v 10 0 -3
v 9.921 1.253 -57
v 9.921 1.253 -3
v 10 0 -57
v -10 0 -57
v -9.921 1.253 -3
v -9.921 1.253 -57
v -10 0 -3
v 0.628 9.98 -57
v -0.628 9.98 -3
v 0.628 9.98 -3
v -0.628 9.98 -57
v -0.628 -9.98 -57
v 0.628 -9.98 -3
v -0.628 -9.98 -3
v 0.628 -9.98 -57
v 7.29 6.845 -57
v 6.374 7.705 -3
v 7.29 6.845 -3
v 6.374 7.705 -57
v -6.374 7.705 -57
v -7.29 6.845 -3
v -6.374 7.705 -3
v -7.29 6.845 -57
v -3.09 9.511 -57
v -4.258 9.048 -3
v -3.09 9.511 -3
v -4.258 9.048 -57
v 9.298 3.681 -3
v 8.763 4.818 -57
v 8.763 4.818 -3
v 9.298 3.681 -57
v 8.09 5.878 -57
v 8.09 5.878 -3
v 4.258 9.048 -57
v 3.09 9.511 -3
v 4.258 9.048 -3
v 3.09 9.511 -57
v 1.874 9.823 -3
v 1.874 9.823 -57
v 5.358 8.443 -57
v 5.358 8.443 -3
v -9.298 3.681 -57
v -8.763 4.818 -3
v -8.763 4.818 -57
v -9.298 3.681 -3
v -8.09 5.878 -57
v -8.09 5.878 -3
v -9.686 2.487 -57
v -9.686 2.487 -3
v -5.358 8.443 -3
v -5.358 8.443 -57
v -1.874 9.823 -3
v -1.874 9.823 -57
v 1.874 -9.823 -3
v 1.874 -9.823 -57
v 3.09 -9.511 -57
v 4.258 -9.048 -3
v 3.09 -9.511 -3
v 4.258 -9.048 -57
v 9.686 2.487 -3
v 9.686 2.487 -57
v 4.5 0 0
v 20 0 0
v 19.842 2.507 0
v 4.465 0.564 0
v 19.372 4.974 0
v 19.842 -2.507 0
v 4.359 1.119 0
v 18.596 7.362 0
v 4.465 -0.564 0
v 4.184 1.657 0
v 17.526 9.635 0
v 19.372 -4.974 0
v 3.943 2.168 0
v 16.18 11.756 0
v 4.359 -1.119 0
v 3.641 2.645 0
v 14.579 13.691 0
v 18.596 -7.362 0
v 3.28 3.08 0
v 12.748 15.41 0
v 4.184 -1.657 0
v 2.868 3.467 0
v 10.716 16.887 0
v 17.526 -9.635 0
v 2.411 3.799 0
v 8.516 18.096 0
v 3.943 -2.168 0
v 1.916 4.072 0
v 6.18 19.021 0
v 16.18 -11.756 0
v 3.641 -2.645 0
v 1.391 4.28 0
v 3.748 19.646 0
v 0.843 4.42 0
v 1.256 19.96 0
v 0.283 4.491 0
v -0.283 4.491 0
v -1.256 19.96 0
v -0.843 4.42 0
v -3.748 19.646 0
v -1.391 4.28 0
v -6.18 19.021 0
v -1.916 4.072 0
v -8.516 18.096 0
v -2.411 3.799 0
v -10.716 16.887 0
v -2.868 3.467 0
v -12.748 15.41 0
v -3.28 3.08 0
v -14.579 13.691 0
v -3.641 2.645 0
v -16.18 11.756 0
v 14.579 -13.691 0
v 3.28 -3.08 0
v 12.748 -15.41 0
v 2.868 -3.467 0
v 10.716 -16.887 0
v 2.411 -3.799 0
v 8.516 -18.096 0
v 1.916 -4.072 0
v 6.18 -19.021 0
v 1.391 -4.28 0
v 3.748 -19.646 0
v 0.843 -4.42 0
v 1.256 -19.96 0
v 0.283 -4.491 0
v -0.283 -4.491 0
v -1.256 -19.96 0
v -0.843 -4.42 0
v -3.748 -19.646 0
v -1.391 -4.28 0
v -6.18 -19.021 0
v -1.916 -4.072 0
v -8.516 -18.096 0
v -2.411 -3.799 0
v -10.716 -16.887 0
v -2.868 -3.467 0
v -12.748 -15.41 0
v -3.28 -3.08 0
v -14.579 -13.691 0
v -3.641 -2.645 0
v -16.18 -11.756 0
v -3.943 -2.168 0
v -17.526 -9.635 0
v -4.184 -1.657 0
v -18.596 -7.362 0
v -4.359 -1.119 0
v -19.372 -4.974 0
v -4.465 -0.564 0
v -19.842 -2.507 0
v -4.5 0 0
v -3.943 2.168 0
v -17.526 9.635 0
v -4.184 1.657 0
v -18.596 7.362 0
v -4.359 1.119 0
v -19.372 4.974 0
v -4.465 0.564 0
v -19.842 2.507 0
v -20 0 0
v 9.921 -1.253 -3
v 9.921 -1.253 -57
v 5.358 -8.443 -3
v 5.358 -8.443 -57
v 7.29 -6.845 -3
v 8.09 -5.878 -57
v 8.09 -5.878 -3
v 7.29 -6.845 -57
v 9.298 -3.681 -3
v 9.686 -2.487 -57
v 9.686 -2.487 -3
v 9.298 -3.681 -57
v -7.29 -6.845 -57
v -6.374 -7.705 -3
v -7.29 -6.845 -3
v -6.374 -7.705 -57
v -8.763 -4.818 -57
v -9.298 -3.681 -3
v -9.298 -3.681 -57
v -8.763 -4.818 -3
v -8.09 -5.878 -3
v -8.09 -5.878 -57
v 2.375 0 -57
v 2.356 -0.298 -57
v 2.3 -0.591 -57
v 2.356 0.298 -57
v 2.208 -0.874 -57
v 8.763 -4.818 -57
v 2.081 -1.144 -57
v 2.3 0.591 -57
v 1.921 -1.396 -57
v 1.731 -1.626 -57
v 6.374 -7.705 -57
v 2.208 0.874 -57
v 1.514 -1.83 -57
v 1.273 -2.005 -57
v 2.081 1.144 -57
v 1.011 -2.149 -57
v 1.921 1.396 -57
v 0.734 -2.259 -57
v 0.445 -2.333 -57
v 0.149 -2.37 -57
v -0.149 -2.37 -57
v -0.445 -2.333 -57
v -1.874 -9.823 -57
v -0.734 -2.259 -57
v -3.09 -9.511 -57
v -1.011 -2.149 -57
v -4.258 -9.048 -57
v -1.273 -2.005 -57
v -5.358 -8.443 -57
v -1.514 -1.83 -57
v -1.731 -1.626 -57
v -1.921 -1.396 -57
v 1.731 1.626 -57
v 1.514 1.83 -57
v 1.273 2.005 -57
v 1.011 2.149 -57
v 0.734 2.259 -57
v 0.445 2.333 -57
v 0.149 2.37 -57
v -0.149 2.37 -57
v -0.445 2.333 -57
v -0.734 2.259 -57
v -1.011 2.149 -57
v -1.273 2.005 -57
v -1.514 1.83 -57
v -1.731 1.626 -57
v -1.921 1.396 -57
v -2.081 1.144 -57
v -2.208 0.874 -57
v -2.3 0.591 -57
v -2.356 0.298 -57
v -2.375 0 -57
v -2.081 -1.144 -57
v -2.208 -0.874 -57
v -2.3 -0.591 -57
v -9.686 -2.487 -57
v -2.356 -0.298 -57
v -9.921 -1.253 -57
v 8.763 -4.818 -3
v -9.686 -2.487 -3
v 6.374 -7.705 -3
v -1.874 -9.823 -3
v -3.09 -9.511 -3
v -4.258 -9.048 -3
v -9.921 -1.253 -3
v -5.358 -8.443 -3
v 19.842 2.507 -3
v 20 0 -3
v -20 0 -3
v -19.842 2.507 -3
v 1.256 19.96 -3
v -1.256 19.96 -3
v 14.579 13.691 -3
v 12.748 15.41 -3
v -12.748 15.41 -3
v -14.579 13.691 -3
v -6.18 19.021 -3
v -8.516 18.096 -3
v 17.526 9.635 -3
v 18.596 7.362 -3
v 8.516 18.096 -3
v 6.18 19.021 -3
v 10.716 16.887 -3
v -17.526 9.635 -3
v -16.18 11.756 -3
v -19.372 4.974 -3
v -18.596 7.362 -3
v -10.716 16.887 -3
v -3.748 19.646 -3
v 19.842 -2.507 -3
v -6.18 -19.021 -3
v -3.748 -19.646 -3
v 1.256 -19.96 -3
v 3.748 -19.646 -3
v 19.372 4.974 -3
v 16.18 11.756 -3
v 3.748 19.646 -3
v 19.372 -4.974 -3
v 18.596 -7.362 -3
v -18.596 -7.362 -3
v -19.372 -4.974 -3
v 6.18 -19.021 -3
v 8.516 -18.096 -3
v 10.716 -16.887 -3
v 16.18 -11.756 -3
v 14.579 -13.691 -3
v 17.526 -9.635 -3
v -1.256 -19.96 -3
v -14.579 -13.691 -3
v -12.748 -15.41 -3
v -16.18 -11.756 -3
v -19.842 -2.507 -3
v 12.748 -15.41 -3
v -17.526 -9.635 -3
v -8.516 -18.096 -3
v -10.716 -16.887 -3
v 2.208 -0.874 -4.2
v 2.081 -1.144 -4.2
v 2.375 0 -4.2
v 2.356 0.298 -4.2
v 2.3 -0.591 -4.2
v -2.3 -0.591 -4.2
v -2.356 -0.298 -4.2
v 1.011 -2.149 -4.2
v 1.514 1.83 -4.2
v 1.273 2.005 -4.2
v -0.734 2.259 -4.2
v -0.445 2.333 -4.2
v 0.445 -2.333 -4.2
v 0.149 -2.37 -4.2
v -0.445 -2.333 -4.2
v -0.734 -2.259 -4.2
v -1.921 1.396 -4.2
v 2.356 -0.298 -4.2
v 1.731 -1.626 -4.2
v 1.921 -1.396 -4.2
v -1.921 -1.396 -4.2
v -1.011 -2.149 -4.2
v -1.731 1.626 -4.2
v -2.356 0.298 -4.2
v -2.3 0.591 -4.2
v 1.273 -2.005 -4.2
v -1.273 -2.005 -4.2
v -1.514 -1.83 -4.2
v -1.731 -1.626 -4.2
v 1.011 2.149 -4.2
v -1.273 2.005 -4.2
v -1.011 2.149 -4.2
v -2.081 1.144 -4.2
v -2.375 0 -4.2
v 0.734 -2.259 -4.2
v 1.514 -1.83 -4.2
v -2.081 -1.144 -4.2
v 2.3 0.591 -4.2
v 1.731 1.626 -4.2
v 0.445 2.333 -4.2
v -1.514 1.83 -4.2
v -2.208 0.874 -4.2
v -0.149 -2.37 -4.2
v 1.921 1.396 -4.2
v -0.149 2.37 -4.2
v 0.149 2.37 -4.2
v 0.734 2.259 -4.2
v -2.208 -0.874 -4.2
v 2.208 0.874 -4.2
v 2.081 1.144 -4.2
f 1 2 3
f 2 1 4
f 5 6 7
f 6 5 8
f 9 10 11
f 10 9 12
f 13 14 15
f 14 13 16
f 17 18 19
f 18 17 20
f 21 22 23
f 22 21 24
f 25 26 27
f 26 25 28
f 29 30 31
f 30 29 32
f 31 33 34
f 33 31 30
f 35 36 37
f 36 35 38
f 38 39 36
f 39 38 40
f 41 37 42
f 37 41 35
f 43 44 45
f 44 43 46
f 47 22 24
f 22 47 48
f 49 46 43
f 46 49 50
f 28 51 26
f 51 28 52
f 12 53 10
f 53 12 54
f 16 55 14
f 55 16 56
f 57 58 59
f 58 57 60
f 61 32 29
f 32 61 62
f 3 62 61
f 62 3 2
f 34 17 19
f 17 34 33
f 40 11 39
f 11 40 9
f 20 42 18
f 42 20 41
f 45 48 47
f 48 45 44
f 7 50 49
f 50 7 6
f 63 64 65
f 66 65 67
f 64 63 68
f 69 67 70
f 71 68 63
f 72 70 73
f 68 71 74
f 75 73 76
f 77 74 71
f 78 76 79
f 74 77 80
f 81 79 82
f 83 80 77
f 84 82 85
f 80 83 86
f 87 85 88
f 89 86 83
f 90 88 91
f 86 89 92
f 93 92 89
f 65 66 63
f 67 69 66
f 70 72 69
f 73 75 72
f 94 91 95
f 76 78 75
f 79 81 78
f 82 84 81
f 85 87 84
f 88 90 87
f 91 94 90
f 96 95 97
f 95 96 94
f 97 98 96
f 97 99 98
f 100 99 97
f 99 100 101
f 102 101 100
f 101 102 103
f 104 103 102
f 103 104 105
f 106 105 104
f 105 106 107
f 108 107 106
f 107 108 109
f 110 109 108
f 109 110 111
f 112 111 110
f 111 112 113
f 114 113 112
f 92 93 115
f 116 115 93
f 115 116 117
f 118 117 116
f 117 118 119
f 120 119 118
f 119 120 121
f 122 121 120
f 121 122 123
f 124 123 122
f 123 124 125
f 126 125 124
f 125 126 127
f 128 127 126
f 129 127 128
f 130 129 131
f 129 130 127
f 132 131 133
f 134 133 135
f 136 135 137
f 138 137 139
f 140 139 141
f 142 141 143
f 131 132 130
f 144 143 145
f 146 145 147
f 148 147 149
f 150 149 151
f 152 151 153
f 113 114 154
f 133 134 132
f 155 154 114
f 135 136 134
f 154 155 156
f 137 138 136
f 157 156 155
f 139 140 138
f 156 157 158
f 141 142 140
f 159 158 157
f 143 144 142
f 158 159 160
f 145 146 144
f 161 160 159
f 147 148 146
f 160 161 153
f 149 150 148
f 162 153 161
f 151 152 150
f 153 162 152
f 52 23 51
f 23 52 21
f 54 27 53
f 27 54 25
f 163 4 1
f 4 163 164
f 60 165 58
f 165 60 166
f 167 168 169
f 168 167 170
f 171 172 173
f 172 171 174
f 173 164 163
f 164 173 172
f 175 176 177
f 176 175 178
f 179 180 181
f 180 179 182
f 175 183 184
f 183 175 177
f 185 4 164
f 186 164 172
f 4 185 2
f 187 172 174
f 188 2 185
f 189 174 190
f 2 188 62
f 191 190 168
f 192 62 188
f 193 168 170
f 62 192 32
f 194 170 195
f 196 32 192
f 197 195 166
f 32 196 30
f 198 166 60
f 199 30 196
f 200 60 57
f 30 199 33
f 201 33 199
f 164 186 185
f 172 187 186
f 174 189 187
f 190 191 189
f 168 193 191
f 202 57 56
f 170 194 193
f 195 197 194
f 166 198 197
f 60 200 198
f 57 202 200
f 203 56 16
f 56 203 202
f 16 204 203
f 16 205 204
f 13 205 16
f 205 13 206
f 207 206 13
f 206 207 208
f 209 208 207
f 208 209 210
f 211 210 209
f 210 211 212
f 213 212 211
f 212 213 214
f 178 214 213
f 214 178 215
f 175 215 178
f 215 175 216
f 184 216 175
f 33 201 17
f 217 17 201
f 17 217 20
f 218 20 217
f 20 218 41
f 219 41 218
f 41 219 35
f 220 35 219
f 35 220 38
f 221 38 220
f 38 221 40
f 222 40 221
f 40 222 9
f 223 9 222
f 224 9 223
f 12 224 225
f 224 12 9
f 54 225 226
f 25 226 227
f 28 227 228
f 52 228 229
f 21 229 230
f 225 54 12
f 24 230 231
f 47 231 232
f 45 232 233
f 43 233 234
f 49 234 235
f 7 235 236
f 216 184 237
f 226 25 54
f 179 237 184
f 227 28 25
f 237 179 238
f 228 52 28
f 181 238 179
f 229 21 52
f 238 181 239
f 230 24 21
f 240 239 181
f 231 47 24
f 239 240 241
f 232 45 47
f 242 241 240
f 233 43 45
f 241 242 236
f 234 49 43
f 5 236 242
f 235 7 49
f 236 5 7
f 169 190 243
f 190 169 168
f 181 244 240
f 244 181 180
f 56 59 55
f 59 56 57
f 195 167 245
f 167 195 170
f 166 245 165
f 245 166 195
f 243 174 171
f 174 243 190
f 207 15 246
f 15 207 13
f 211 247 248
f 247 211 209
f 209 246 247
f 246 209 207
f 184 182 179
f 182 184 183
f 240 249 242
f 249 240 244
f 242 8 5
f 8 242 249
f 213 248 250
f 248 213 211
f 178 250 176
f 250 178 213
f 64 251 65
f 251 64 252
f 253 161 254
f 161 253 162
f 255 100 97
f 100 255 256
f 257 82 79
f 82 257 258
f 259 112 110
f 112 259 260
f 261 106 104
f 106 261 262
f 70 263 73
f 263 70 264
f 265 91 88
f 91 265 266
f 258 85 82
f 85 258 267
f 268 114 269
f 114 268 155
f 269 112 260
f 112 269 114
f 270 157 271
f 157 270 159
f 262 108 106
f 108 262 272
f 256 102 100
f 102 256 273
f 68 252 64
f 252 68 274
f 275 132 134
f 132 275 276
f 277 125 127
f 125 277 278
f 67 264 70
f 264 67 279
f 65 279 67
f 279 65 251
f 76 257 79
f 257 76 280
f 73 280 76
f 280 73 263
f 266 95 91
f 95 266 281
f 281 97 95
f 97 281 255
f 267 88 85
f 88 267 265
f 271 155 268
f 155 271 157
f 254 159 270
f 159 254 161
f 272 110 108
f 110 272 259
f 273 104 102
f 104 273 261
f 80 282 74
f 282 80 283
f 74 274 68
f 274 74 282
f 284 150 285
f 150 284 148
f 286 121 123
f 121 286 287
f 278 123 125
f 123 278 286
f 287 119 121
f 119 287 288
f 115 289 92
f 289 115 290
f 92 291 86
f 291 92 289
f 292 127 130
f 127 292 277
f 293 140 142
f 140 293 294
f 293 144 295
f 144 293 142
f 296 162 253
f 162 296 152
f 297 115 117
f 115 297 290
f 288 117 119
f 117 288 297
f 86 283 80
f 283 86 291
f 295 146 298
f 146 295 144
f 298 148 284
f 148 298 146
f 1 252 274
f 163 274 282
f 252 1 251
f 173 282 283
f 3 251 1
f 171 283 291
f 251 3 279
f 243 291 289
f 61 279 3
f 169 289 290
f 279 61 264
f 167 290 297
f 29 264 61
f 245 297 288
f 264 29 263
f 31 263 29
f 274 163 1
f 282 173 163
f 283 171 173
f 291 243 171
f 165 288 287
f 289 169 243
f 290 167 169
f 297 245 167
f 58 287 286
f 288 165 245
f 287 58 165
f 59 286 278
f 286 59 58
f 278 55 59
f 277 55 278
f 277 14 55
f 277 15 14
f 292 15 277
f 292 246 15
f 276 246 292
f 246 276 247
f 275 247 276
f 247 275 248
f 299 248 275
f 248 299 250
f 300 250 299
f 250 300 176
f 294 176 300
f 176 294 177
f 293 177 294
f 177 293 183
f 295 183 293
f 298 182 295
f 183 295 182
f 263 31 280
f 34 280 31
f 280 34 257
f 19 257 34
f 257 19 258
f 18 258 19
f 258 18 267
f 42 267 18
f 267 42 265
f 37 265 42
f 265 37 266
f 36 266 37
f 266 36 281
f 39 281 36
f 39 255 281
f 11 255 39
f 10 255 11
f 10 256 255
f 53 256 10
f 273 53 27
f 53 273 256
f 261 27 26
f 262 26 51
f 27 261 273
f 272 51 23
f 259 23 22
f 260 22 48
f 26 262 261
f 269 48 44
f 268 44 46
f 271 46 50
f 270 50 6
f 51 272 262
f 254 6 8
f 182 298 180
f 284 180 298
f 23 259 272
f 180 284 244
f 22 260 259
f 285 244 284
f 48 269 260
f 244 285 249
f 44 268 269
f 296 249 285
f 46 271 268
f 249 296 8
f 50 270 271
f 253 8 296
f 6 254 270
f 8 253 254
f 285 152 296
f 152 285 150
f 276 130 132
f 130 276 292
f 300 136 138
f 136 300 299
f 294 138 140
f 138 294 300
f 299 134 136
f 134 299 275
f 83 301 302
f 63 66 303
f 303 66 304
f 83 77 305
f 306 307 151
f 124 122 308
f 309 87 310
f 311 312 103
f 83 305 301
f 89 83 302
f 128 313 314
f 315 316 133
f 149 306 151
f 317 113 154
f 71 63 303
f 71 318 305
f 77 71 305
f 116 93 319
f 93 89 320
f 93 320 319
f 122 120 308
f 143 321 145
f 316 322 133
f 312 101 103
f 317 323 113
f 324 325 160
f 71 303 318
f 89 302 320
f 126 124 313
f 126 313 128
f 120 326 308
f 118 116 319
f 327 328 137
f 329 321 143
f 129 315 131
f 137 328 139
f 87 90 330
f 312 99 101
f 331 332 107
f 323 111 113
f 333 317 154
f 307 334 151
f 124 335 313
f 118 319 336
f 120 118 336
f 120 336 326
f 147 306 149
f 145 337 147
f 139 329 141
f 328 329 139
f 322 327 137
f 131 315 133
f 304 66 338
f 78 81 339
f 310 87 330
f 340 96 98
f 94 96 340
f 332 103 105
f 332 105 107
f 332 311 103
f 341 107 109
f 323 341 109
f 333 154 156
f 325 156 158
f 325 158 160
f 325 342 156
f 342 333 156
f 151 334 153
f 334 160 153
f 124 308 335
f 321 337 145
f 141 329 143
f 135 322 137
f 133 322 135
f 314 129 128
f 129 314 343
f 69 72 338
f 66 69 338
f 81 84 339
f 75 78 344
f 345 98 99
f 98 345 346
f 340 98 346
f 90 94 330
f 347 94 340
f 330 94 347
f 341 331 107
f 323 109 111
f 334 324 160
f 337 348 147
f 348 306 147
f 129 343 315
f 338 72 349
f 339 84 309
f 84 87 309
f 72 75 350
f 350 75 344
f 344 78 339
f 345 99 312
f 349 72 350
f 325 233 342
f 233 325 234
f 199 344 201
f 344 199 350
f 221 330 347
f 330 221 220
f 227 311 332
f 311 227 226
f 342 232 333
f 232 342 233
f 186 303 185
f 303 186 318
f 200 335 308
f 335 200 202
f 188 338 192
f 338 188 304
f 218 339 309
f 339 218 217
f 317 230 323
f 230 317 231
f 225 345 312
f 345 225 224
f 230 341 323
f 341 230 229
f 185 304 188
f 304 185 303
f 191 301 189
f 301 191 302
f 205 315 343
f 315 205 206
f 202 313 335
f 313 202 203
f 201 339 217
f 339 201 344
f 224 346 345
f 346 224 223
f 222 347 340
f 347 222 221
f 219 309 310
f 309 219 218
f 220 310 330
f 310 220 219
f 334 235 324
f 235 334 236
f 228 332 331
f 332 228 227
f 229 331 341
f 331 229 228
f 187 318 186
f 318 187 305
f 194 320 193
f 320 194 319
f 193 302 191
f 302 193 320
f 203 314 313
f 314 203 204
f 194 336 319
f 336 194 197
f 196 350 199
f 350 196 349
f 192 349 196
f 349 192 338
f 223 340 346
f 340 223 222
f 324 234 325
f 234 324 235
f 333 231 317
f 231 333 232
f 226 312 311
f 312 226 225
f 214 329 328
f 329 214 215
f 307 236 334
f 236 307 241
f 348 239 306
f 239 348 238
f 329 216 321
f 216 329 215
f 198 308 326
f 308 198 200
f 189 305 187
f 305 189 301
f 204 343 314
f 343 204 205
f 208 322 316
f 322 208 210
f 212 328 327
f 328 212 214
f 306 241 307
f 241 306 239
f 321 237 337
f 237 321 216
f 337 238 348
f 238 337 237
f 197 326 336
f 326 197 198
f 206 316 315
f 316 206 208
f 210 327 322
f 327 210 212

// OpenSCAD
$fn = 50;


difference() {
	union() {
		translate(v = [0, 0, -57.0000000000]) {
			cylinder(h = 57, r = 10.0000000000);
		}
		translate(v = [0, 0, -3.0000000000]) {
			cylinder(h = 3, r = 20.0000000000);
		}
	}
	union() {
		translate(v = [0, 0, 0]) {
			rotate(a = [0, 0, 0]) {
				difference() {
					union() {
						#translate(v = [0, 0, -57.0000000000]) {
							cylinder(h = 57, r = 2.2500000000);
						}
						#translate(v = [0, 0, -4.2000000000]) {
							cylinder(h = 4.2000000000, r1 = 2.3750000000, r2 = 4.5000000000);
						}
						#translate(v = [0, 0, -57.0000000000]) {
							cylinder(h = 57, r = 2.3750000000);
						}
						#translate(v = [0, 0, -57.0000000000]) {
							cylinder(h = 57, r = 2.2500000000);
						}
					}
					union();
				}
			}
		}
	}
}
